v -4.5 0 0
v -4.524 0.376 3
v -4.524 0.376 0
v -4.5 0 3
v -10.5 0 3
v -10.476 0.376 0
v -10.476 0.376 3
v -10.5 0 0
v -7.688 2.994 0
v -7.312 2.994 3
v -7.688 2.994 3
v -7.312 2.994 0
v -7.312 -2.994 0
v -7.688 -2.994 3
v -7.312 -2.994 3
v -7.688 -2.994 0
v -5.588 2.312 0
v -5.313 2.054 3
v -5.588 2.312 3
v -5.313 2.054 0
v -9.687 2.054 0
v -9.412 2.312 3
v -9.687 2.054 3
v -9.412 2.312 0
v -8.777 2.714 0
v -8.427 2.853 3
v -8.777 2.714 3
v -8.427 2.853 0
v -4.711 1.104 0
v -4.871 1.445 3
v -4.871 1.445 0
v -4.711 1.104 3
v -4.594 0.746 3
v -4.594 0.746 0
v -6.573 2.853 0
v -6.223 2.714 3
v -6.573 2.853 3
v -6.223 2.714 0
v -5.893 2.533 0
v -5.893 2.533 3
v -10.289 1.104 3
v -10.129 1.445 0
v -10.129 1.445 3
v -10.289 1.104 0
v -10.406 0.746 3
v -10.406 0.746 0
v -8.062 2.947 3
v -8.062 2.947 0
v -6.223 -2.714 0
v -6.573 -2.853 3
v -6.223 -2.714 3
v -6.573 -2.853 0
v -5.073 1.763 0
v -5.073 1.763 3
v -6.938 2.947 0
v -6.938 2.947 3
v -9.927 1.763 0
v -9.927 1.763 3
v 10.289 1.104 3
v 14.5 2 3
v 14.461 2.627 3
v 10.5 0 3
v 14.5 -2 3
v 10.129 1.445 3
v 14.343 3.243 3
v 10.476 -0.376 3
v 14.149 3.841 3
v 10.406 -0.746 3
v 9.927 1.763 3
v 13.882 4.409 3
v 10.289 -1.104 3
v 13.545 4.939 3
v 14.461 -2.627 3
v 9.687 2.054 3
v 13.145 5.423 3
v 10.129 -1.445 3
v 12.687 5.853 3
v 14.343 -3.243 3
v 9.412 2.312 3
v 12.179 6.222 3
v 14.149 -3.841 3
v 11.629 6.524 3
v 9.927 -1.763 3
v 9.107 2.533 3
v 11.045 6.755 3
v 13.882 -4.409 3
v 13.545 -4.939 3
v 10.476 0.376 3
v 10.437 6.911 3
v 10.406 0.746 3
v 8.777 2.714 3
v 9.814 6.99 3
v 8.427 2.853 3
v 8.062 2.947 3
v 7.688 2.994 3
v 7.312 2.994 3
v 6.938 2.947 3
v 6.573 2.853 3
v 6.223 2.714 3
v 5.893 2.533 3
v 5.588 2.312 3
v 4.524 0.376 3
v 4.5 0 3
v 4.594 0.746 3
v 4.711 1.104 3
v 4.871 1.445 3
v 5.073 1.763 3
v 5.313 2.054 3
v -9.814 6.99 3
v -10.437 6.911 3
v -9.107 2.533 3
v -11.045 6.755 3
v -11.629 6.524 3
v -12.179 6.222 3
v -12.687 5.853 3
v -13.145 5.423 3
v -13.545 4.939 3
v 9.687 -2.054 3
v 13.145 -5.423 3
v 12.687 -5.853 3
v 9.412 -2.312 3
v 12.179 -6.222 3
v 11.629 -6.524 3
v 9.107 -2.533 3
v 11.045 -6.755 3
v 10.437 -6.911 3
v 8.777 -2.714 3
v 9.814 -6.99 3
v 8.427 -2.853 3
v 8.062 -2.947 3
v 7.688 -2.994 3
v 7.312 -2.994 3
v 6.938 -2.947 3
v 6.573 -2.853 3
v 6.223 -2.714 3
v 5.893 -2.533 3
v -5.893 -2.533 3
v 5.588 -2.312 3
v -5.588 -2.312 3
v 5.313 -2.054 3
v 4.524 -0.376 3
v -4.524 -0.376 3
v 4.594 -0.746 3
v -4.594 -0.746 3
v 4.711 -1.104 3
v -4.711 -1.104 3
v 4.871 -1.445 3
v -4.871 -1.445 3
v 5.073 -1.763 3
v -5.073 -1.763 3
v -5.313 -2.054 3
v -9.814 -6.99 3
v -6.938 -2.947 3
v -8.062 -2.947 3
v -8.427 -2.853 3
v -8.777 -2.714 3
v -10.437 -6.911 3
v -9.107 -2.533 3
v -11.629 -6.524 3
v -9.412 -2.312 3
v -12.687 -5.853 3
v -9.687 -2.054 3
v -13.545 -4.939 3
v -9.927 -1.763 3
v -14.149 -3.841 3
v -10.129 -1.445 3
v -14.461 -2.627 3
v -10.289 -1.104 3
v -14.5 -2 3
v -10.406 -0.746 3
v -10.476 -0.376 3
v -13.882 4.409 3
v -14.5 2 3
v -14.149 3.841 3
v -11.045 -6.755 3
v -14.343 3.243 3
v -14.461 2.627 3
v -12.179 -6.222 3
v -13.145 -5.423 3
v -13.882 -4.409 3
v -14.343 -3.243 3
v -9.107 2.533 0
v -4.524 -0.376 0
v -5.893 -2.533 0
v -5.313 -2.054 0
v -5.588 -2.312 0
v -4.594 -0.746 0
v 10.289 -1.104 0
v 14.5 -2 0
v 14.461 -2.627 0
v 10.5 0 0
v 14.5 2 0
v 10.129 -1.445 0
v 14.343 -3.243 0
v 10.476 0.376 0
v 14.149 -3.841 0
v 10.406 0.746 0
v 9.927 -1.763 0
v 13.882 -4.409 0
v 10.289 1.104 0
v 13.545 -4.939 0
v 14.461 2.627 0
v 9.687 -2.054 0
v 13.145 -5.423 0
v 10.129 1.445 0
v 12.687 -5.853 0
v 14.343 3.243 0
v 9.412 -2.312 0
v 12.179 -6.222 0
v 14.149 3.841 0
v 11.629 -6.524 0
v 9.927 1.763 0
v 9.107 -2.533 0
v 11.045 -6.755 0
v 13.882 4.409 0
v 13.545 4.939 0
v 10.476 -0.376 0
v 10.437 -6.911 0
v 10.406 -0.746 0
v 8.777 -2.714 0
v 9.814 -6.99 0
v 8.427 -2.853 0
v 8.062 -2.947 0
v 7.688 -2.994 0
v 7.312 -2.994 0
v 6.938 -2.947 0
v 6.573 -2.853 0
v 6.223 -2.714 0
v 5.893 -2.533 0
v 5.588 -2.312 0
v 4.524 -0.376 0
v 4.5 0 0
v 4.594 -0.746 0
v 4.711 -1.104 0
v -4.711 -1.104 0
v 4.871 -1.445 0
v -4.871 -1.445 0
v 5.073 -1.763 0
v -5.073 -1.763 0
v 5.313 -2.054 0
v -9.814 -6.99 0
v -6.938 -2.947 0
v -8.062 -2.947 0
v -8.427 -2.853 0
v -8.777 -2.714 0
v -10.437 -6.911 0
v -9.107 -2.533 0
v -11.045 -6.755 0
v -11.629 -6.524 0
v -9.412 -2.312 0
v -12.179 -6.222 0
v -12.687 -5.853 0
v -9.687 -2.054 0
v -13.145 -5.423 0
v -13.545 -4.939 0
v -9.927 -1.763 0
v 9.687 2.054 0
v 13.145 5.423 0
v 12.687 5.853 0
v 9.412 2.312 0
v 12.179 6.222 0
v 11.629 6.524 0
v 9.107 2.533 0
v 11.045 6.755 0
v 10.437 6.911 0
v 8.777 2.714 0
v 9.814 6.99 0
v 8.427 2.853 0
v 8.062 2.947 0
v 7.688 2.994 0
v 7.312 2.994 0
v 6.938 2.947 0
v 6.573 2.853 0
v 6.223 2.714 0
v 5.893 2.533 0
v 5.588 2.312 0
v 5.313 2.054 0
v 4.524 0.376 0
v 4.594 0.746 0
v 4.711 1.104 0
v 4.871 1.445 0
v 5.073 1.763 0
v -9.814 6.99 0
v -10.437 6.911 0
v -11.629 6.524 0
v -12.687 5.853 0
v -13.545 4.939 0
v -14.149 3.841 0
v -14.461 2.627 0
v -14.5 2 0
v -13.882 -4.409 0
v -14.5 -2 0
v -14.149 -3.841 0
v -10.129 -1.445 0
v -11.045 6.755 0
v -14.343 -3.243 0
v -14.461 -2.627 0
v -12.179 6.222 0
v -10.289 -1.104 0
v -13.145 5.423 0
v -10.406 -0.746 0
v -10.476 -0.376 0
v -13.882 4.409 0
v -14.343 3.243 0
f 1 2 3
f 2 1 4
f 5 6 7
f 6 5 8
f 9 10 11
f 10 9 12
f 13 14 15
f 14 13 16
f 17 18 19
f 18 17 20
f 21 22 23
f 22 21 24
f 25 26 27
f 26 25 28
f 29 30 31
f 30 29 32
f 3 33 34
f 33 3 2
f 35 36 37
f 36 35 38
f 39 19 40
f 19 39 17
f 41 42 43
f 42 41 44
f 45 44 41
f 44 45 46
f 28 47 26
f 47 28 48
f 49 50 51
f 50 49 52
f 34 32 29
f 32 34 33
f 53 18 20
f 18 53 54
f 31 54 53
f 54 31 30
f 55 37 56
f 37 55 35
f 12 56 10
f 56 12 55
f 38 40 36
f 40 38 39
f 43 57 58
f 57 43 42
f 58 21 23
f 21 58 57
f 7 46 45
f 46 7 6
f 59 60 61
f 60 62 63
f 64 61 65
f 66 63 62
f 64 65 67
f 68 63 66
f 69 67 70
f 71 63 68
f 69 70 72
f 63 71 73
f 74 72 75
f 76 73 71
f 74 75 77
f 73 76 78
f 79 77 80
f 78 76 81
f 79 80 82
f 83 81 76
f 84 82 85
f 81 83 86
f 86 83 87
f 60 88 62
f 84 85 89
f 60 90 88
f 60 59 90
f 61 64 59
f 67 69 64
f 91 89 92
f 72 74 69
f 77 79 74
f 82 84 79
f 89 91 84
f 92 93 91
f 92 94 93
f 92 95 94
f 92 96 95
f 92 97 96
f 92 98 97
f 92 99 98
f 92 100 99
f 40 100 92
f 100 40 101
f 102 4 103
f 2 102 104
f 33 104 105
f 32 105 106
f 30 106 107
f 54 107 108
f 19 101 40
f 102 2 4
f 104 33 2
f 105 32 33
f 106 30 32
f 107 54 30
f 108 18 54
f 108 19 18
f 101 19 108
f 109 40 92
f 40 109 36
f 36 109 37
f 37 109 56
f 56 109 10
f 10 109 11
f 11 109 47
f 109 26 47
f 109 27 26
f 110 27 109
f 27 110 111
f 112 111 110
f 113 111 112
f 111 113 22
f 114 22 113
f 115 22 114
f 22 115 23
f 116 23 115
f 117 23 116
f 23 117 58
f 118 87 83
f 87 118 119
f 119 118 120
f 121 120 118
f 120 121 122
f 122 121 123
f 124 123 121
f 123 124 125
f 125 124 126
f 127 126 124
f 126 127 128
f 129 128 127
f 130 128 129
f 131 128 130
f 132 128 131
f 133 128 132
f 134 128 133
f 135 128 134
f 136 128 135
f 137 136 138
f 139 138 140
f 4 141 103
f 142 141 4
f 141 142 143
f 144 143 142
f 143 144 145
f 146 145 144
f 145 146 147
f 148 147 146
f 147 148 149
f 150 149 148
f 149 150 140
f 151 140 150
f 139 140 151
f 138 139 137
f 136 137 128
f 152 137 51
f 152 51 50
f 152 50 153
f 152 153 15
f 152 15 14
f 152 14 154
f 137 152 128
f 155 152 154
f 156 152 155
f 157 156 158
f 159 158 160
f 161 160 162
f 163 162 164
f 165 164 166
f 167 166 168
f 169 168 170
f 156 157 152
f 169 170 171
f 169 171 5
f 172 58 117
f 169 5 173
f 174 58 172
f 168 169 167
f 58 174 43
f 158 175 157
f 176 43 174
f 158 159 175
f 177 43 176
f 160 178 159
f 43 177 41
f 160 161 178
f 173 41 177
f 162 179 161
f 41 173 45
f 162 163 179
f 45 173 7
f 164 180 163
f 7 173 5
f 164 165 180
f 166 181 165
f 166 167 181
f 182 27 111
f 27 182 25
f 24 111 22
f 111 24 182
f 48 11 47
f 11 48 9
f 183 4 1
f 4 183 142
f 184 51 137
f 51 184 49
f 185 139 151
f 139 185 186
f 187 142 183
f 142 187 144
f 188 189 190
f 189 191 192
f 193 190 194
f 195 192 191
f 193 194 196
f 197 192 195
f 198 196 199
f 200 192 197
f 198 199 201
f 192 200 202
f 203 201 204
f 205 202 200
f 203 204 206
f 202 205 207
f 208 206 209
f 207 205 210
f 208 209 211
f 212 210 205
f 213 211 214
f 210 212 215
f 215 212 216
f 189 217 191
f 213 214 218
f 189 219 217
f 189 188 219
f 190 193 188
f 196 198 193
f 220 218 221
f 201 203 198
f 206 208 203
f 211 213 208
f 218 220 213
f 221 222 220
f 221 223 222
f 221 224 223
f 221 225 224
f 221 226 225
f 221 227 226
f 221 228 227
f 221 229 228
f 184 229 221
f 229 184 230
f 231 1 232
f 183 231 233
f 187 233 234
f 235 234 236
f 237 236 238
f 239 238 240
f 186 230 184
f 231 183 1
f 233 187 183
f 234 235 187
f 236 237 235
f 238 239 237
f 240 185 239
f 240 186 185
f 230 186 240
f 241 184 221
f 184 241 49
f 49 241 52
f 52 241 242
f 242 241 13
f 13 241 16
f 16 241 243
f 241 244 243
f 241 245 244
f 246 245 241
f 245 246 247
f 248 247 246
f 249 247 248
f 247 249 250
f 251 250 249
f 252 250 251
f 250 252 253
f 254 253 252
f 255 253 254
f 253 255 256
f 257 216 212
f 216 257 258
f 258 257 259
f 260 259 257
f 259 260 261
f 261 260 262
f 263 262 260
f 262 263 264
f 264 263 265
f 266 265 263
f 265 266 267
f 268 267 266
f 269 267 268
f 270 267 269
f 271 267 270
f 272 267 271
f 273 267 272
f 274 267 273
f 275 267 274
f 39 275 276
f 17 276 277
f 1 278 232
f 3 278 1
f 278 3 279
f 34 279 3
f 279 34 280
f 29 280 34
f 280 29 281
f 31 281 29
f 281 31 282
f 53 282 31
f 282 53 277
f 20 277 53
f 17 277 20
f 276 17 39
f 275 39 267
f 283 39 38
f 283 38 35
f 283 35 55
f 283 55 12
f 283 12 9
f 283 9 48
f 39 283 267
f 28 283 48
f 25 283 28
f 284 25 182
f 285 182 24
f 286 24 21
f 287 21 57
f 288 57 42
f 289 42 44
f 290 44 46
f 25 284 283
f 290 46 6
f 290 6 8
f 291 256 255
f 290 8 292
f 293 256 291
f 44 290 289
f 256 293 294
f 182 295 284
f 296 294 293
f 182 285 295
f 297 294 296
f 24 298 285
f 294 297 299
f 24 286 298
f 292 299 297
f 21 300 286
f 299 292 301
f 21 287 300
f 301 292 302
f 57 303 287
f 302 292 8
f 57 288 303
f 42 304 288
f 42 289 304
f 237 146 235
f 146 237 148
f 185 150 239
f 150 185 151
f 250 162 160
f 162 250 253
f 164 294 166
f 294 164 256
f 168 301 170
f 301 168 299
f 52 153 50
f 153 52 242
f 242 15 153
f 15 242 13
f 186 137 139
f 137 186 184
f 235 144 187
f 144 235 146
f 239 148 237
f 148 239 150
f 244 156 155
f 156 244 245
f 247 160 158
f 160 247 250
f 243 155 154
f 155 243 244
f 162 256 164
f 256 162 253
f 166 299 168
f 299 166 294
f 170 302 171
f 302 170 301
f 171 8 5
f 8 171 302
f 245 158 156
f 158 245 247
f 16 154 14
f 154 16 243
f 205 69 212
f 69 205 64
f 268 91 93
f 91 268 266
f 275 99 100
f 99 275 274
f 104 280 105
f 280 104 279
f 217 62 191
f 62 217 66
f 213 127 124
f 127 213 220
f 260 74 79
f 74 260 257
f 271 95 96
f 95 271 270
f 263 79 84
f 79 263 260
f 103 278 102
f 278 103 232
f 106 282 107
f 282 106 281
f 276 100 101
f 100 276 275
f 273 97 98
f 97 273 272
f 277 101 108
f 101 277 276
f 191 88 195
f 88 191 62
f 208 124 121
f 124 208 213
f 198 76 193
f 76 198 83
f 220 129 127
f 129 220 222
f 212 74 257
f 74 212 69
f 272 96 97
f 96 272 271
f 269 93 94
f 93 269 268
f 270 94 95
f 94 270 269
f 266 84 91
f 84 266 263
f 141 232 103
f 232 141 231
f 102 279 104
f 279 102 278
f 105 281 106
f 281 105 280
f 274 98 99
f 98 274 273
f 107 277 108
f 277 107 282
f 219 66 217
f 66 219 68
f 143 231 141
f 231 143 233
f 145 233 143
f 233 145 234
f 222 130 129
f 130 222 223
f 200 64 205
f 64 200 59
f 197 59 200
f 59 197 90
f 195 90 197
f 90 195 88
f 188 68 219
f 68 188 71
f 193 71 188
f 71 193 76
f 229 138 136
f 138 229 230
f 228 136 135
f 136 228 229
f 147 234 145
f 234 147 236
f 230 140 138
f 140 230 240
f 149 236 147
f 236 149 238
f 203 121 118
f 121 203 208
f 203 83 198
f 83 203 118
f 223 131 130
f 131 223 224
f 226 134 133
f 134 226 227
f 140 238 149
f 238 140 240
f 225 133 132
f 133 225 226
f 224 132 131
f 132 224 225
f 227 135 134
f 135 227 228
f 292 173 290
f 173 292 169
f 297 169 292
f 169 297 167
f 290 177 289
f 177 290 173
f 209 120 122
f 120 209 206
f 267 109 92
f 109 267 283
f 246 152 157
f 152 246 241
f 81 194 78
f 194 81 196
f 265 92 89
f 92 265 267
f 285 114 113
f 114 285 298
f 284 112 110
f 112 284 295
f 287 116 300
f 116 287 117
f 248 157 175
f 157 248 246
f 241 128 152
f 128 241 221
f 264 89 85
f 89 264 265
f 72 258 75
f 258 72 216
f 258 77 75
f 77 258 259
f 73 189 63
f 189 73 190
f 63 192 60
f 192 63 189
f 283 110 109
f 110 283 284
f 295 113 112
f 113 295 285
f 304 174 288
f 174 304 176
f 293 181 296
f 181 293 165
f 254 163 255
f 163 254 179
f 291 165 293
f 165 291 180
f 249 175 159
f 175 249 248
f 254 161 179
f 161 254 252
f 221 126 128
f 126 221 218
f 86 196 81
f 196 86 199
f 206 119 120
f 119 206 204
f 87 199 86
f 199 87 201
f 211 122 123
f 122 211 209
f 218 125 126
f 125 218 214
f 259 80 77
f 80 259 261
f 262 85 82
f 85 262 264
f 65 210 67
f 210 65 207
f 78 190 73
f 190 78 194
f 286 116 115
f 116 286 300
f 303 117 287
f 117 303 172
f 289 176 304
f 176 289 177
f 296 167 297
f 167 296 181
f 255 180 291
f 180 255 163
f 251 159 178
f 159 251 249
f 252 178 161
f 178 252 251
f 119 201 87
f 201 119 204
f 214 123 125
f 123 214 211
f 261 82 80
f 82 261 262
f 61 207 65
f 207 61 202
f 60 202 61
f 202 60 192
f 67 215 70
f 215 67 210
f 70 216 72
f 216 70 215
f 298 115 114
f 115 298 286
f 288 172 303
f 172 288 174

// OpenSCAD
$fn = 50;


difference() {
	union() {
		hull() {
			translate(v = [-9.5000000000, 2.0000000000, 0]) {
				cylinder(h = 3, r = 5);
			}
			translate(v = [9.5000000000, 2.0000000000, 0]) {
				cylinder(h = 3, r = 5);
			}
			translate(v = [-9.5000000000, -2.0000000000, 0]) {
				cylinder(h = 3, r = 5);
			}
			translate(v = [9.5000000000, -2.0000000000, 0]) {
				cylinder(h = 3, r = 5);
			}
		}
	}
	union() {
		translate(v = [-7.5000000000, 0.0000000000, 0]) {
			cylinder(h = 3, r = 3.0000000000);
		}
		translate(v = [7.5000000000, 0.0000000000, 0]) {
			cylinder(h = 3, r = 3.0000000000);
		}
		translate(v = [-7.5000000000, 0.0000000000, 0]) {
			cylinder(h = 3, r = 1.5000000000);
		}
		translate(v = [7.5000000000, 0.0000000000, 0]) {
			cylinder(h = 3, r = 1.5000000000);
		}
		translate(v = [-7.5000000000, 0.0000000000, 0]) {
			cylinder(h = 3, r = 1.5000000000);
		}
		translate(v = [7.5000000000, 0.0000000000, 0]) {
			cylinder(h = 3, r = 1.5000000000);
		}
		translate(v = [-7.5000000000, 0.0000000000, 0]) {
			cylinder(h = 3, r = 1.5000000000);
		}
		translate(v = [7.5000000000, 0.0000000000, 0]) {
			cylinder(h = 3, r = 1.5000000000);
		}
	}
}
